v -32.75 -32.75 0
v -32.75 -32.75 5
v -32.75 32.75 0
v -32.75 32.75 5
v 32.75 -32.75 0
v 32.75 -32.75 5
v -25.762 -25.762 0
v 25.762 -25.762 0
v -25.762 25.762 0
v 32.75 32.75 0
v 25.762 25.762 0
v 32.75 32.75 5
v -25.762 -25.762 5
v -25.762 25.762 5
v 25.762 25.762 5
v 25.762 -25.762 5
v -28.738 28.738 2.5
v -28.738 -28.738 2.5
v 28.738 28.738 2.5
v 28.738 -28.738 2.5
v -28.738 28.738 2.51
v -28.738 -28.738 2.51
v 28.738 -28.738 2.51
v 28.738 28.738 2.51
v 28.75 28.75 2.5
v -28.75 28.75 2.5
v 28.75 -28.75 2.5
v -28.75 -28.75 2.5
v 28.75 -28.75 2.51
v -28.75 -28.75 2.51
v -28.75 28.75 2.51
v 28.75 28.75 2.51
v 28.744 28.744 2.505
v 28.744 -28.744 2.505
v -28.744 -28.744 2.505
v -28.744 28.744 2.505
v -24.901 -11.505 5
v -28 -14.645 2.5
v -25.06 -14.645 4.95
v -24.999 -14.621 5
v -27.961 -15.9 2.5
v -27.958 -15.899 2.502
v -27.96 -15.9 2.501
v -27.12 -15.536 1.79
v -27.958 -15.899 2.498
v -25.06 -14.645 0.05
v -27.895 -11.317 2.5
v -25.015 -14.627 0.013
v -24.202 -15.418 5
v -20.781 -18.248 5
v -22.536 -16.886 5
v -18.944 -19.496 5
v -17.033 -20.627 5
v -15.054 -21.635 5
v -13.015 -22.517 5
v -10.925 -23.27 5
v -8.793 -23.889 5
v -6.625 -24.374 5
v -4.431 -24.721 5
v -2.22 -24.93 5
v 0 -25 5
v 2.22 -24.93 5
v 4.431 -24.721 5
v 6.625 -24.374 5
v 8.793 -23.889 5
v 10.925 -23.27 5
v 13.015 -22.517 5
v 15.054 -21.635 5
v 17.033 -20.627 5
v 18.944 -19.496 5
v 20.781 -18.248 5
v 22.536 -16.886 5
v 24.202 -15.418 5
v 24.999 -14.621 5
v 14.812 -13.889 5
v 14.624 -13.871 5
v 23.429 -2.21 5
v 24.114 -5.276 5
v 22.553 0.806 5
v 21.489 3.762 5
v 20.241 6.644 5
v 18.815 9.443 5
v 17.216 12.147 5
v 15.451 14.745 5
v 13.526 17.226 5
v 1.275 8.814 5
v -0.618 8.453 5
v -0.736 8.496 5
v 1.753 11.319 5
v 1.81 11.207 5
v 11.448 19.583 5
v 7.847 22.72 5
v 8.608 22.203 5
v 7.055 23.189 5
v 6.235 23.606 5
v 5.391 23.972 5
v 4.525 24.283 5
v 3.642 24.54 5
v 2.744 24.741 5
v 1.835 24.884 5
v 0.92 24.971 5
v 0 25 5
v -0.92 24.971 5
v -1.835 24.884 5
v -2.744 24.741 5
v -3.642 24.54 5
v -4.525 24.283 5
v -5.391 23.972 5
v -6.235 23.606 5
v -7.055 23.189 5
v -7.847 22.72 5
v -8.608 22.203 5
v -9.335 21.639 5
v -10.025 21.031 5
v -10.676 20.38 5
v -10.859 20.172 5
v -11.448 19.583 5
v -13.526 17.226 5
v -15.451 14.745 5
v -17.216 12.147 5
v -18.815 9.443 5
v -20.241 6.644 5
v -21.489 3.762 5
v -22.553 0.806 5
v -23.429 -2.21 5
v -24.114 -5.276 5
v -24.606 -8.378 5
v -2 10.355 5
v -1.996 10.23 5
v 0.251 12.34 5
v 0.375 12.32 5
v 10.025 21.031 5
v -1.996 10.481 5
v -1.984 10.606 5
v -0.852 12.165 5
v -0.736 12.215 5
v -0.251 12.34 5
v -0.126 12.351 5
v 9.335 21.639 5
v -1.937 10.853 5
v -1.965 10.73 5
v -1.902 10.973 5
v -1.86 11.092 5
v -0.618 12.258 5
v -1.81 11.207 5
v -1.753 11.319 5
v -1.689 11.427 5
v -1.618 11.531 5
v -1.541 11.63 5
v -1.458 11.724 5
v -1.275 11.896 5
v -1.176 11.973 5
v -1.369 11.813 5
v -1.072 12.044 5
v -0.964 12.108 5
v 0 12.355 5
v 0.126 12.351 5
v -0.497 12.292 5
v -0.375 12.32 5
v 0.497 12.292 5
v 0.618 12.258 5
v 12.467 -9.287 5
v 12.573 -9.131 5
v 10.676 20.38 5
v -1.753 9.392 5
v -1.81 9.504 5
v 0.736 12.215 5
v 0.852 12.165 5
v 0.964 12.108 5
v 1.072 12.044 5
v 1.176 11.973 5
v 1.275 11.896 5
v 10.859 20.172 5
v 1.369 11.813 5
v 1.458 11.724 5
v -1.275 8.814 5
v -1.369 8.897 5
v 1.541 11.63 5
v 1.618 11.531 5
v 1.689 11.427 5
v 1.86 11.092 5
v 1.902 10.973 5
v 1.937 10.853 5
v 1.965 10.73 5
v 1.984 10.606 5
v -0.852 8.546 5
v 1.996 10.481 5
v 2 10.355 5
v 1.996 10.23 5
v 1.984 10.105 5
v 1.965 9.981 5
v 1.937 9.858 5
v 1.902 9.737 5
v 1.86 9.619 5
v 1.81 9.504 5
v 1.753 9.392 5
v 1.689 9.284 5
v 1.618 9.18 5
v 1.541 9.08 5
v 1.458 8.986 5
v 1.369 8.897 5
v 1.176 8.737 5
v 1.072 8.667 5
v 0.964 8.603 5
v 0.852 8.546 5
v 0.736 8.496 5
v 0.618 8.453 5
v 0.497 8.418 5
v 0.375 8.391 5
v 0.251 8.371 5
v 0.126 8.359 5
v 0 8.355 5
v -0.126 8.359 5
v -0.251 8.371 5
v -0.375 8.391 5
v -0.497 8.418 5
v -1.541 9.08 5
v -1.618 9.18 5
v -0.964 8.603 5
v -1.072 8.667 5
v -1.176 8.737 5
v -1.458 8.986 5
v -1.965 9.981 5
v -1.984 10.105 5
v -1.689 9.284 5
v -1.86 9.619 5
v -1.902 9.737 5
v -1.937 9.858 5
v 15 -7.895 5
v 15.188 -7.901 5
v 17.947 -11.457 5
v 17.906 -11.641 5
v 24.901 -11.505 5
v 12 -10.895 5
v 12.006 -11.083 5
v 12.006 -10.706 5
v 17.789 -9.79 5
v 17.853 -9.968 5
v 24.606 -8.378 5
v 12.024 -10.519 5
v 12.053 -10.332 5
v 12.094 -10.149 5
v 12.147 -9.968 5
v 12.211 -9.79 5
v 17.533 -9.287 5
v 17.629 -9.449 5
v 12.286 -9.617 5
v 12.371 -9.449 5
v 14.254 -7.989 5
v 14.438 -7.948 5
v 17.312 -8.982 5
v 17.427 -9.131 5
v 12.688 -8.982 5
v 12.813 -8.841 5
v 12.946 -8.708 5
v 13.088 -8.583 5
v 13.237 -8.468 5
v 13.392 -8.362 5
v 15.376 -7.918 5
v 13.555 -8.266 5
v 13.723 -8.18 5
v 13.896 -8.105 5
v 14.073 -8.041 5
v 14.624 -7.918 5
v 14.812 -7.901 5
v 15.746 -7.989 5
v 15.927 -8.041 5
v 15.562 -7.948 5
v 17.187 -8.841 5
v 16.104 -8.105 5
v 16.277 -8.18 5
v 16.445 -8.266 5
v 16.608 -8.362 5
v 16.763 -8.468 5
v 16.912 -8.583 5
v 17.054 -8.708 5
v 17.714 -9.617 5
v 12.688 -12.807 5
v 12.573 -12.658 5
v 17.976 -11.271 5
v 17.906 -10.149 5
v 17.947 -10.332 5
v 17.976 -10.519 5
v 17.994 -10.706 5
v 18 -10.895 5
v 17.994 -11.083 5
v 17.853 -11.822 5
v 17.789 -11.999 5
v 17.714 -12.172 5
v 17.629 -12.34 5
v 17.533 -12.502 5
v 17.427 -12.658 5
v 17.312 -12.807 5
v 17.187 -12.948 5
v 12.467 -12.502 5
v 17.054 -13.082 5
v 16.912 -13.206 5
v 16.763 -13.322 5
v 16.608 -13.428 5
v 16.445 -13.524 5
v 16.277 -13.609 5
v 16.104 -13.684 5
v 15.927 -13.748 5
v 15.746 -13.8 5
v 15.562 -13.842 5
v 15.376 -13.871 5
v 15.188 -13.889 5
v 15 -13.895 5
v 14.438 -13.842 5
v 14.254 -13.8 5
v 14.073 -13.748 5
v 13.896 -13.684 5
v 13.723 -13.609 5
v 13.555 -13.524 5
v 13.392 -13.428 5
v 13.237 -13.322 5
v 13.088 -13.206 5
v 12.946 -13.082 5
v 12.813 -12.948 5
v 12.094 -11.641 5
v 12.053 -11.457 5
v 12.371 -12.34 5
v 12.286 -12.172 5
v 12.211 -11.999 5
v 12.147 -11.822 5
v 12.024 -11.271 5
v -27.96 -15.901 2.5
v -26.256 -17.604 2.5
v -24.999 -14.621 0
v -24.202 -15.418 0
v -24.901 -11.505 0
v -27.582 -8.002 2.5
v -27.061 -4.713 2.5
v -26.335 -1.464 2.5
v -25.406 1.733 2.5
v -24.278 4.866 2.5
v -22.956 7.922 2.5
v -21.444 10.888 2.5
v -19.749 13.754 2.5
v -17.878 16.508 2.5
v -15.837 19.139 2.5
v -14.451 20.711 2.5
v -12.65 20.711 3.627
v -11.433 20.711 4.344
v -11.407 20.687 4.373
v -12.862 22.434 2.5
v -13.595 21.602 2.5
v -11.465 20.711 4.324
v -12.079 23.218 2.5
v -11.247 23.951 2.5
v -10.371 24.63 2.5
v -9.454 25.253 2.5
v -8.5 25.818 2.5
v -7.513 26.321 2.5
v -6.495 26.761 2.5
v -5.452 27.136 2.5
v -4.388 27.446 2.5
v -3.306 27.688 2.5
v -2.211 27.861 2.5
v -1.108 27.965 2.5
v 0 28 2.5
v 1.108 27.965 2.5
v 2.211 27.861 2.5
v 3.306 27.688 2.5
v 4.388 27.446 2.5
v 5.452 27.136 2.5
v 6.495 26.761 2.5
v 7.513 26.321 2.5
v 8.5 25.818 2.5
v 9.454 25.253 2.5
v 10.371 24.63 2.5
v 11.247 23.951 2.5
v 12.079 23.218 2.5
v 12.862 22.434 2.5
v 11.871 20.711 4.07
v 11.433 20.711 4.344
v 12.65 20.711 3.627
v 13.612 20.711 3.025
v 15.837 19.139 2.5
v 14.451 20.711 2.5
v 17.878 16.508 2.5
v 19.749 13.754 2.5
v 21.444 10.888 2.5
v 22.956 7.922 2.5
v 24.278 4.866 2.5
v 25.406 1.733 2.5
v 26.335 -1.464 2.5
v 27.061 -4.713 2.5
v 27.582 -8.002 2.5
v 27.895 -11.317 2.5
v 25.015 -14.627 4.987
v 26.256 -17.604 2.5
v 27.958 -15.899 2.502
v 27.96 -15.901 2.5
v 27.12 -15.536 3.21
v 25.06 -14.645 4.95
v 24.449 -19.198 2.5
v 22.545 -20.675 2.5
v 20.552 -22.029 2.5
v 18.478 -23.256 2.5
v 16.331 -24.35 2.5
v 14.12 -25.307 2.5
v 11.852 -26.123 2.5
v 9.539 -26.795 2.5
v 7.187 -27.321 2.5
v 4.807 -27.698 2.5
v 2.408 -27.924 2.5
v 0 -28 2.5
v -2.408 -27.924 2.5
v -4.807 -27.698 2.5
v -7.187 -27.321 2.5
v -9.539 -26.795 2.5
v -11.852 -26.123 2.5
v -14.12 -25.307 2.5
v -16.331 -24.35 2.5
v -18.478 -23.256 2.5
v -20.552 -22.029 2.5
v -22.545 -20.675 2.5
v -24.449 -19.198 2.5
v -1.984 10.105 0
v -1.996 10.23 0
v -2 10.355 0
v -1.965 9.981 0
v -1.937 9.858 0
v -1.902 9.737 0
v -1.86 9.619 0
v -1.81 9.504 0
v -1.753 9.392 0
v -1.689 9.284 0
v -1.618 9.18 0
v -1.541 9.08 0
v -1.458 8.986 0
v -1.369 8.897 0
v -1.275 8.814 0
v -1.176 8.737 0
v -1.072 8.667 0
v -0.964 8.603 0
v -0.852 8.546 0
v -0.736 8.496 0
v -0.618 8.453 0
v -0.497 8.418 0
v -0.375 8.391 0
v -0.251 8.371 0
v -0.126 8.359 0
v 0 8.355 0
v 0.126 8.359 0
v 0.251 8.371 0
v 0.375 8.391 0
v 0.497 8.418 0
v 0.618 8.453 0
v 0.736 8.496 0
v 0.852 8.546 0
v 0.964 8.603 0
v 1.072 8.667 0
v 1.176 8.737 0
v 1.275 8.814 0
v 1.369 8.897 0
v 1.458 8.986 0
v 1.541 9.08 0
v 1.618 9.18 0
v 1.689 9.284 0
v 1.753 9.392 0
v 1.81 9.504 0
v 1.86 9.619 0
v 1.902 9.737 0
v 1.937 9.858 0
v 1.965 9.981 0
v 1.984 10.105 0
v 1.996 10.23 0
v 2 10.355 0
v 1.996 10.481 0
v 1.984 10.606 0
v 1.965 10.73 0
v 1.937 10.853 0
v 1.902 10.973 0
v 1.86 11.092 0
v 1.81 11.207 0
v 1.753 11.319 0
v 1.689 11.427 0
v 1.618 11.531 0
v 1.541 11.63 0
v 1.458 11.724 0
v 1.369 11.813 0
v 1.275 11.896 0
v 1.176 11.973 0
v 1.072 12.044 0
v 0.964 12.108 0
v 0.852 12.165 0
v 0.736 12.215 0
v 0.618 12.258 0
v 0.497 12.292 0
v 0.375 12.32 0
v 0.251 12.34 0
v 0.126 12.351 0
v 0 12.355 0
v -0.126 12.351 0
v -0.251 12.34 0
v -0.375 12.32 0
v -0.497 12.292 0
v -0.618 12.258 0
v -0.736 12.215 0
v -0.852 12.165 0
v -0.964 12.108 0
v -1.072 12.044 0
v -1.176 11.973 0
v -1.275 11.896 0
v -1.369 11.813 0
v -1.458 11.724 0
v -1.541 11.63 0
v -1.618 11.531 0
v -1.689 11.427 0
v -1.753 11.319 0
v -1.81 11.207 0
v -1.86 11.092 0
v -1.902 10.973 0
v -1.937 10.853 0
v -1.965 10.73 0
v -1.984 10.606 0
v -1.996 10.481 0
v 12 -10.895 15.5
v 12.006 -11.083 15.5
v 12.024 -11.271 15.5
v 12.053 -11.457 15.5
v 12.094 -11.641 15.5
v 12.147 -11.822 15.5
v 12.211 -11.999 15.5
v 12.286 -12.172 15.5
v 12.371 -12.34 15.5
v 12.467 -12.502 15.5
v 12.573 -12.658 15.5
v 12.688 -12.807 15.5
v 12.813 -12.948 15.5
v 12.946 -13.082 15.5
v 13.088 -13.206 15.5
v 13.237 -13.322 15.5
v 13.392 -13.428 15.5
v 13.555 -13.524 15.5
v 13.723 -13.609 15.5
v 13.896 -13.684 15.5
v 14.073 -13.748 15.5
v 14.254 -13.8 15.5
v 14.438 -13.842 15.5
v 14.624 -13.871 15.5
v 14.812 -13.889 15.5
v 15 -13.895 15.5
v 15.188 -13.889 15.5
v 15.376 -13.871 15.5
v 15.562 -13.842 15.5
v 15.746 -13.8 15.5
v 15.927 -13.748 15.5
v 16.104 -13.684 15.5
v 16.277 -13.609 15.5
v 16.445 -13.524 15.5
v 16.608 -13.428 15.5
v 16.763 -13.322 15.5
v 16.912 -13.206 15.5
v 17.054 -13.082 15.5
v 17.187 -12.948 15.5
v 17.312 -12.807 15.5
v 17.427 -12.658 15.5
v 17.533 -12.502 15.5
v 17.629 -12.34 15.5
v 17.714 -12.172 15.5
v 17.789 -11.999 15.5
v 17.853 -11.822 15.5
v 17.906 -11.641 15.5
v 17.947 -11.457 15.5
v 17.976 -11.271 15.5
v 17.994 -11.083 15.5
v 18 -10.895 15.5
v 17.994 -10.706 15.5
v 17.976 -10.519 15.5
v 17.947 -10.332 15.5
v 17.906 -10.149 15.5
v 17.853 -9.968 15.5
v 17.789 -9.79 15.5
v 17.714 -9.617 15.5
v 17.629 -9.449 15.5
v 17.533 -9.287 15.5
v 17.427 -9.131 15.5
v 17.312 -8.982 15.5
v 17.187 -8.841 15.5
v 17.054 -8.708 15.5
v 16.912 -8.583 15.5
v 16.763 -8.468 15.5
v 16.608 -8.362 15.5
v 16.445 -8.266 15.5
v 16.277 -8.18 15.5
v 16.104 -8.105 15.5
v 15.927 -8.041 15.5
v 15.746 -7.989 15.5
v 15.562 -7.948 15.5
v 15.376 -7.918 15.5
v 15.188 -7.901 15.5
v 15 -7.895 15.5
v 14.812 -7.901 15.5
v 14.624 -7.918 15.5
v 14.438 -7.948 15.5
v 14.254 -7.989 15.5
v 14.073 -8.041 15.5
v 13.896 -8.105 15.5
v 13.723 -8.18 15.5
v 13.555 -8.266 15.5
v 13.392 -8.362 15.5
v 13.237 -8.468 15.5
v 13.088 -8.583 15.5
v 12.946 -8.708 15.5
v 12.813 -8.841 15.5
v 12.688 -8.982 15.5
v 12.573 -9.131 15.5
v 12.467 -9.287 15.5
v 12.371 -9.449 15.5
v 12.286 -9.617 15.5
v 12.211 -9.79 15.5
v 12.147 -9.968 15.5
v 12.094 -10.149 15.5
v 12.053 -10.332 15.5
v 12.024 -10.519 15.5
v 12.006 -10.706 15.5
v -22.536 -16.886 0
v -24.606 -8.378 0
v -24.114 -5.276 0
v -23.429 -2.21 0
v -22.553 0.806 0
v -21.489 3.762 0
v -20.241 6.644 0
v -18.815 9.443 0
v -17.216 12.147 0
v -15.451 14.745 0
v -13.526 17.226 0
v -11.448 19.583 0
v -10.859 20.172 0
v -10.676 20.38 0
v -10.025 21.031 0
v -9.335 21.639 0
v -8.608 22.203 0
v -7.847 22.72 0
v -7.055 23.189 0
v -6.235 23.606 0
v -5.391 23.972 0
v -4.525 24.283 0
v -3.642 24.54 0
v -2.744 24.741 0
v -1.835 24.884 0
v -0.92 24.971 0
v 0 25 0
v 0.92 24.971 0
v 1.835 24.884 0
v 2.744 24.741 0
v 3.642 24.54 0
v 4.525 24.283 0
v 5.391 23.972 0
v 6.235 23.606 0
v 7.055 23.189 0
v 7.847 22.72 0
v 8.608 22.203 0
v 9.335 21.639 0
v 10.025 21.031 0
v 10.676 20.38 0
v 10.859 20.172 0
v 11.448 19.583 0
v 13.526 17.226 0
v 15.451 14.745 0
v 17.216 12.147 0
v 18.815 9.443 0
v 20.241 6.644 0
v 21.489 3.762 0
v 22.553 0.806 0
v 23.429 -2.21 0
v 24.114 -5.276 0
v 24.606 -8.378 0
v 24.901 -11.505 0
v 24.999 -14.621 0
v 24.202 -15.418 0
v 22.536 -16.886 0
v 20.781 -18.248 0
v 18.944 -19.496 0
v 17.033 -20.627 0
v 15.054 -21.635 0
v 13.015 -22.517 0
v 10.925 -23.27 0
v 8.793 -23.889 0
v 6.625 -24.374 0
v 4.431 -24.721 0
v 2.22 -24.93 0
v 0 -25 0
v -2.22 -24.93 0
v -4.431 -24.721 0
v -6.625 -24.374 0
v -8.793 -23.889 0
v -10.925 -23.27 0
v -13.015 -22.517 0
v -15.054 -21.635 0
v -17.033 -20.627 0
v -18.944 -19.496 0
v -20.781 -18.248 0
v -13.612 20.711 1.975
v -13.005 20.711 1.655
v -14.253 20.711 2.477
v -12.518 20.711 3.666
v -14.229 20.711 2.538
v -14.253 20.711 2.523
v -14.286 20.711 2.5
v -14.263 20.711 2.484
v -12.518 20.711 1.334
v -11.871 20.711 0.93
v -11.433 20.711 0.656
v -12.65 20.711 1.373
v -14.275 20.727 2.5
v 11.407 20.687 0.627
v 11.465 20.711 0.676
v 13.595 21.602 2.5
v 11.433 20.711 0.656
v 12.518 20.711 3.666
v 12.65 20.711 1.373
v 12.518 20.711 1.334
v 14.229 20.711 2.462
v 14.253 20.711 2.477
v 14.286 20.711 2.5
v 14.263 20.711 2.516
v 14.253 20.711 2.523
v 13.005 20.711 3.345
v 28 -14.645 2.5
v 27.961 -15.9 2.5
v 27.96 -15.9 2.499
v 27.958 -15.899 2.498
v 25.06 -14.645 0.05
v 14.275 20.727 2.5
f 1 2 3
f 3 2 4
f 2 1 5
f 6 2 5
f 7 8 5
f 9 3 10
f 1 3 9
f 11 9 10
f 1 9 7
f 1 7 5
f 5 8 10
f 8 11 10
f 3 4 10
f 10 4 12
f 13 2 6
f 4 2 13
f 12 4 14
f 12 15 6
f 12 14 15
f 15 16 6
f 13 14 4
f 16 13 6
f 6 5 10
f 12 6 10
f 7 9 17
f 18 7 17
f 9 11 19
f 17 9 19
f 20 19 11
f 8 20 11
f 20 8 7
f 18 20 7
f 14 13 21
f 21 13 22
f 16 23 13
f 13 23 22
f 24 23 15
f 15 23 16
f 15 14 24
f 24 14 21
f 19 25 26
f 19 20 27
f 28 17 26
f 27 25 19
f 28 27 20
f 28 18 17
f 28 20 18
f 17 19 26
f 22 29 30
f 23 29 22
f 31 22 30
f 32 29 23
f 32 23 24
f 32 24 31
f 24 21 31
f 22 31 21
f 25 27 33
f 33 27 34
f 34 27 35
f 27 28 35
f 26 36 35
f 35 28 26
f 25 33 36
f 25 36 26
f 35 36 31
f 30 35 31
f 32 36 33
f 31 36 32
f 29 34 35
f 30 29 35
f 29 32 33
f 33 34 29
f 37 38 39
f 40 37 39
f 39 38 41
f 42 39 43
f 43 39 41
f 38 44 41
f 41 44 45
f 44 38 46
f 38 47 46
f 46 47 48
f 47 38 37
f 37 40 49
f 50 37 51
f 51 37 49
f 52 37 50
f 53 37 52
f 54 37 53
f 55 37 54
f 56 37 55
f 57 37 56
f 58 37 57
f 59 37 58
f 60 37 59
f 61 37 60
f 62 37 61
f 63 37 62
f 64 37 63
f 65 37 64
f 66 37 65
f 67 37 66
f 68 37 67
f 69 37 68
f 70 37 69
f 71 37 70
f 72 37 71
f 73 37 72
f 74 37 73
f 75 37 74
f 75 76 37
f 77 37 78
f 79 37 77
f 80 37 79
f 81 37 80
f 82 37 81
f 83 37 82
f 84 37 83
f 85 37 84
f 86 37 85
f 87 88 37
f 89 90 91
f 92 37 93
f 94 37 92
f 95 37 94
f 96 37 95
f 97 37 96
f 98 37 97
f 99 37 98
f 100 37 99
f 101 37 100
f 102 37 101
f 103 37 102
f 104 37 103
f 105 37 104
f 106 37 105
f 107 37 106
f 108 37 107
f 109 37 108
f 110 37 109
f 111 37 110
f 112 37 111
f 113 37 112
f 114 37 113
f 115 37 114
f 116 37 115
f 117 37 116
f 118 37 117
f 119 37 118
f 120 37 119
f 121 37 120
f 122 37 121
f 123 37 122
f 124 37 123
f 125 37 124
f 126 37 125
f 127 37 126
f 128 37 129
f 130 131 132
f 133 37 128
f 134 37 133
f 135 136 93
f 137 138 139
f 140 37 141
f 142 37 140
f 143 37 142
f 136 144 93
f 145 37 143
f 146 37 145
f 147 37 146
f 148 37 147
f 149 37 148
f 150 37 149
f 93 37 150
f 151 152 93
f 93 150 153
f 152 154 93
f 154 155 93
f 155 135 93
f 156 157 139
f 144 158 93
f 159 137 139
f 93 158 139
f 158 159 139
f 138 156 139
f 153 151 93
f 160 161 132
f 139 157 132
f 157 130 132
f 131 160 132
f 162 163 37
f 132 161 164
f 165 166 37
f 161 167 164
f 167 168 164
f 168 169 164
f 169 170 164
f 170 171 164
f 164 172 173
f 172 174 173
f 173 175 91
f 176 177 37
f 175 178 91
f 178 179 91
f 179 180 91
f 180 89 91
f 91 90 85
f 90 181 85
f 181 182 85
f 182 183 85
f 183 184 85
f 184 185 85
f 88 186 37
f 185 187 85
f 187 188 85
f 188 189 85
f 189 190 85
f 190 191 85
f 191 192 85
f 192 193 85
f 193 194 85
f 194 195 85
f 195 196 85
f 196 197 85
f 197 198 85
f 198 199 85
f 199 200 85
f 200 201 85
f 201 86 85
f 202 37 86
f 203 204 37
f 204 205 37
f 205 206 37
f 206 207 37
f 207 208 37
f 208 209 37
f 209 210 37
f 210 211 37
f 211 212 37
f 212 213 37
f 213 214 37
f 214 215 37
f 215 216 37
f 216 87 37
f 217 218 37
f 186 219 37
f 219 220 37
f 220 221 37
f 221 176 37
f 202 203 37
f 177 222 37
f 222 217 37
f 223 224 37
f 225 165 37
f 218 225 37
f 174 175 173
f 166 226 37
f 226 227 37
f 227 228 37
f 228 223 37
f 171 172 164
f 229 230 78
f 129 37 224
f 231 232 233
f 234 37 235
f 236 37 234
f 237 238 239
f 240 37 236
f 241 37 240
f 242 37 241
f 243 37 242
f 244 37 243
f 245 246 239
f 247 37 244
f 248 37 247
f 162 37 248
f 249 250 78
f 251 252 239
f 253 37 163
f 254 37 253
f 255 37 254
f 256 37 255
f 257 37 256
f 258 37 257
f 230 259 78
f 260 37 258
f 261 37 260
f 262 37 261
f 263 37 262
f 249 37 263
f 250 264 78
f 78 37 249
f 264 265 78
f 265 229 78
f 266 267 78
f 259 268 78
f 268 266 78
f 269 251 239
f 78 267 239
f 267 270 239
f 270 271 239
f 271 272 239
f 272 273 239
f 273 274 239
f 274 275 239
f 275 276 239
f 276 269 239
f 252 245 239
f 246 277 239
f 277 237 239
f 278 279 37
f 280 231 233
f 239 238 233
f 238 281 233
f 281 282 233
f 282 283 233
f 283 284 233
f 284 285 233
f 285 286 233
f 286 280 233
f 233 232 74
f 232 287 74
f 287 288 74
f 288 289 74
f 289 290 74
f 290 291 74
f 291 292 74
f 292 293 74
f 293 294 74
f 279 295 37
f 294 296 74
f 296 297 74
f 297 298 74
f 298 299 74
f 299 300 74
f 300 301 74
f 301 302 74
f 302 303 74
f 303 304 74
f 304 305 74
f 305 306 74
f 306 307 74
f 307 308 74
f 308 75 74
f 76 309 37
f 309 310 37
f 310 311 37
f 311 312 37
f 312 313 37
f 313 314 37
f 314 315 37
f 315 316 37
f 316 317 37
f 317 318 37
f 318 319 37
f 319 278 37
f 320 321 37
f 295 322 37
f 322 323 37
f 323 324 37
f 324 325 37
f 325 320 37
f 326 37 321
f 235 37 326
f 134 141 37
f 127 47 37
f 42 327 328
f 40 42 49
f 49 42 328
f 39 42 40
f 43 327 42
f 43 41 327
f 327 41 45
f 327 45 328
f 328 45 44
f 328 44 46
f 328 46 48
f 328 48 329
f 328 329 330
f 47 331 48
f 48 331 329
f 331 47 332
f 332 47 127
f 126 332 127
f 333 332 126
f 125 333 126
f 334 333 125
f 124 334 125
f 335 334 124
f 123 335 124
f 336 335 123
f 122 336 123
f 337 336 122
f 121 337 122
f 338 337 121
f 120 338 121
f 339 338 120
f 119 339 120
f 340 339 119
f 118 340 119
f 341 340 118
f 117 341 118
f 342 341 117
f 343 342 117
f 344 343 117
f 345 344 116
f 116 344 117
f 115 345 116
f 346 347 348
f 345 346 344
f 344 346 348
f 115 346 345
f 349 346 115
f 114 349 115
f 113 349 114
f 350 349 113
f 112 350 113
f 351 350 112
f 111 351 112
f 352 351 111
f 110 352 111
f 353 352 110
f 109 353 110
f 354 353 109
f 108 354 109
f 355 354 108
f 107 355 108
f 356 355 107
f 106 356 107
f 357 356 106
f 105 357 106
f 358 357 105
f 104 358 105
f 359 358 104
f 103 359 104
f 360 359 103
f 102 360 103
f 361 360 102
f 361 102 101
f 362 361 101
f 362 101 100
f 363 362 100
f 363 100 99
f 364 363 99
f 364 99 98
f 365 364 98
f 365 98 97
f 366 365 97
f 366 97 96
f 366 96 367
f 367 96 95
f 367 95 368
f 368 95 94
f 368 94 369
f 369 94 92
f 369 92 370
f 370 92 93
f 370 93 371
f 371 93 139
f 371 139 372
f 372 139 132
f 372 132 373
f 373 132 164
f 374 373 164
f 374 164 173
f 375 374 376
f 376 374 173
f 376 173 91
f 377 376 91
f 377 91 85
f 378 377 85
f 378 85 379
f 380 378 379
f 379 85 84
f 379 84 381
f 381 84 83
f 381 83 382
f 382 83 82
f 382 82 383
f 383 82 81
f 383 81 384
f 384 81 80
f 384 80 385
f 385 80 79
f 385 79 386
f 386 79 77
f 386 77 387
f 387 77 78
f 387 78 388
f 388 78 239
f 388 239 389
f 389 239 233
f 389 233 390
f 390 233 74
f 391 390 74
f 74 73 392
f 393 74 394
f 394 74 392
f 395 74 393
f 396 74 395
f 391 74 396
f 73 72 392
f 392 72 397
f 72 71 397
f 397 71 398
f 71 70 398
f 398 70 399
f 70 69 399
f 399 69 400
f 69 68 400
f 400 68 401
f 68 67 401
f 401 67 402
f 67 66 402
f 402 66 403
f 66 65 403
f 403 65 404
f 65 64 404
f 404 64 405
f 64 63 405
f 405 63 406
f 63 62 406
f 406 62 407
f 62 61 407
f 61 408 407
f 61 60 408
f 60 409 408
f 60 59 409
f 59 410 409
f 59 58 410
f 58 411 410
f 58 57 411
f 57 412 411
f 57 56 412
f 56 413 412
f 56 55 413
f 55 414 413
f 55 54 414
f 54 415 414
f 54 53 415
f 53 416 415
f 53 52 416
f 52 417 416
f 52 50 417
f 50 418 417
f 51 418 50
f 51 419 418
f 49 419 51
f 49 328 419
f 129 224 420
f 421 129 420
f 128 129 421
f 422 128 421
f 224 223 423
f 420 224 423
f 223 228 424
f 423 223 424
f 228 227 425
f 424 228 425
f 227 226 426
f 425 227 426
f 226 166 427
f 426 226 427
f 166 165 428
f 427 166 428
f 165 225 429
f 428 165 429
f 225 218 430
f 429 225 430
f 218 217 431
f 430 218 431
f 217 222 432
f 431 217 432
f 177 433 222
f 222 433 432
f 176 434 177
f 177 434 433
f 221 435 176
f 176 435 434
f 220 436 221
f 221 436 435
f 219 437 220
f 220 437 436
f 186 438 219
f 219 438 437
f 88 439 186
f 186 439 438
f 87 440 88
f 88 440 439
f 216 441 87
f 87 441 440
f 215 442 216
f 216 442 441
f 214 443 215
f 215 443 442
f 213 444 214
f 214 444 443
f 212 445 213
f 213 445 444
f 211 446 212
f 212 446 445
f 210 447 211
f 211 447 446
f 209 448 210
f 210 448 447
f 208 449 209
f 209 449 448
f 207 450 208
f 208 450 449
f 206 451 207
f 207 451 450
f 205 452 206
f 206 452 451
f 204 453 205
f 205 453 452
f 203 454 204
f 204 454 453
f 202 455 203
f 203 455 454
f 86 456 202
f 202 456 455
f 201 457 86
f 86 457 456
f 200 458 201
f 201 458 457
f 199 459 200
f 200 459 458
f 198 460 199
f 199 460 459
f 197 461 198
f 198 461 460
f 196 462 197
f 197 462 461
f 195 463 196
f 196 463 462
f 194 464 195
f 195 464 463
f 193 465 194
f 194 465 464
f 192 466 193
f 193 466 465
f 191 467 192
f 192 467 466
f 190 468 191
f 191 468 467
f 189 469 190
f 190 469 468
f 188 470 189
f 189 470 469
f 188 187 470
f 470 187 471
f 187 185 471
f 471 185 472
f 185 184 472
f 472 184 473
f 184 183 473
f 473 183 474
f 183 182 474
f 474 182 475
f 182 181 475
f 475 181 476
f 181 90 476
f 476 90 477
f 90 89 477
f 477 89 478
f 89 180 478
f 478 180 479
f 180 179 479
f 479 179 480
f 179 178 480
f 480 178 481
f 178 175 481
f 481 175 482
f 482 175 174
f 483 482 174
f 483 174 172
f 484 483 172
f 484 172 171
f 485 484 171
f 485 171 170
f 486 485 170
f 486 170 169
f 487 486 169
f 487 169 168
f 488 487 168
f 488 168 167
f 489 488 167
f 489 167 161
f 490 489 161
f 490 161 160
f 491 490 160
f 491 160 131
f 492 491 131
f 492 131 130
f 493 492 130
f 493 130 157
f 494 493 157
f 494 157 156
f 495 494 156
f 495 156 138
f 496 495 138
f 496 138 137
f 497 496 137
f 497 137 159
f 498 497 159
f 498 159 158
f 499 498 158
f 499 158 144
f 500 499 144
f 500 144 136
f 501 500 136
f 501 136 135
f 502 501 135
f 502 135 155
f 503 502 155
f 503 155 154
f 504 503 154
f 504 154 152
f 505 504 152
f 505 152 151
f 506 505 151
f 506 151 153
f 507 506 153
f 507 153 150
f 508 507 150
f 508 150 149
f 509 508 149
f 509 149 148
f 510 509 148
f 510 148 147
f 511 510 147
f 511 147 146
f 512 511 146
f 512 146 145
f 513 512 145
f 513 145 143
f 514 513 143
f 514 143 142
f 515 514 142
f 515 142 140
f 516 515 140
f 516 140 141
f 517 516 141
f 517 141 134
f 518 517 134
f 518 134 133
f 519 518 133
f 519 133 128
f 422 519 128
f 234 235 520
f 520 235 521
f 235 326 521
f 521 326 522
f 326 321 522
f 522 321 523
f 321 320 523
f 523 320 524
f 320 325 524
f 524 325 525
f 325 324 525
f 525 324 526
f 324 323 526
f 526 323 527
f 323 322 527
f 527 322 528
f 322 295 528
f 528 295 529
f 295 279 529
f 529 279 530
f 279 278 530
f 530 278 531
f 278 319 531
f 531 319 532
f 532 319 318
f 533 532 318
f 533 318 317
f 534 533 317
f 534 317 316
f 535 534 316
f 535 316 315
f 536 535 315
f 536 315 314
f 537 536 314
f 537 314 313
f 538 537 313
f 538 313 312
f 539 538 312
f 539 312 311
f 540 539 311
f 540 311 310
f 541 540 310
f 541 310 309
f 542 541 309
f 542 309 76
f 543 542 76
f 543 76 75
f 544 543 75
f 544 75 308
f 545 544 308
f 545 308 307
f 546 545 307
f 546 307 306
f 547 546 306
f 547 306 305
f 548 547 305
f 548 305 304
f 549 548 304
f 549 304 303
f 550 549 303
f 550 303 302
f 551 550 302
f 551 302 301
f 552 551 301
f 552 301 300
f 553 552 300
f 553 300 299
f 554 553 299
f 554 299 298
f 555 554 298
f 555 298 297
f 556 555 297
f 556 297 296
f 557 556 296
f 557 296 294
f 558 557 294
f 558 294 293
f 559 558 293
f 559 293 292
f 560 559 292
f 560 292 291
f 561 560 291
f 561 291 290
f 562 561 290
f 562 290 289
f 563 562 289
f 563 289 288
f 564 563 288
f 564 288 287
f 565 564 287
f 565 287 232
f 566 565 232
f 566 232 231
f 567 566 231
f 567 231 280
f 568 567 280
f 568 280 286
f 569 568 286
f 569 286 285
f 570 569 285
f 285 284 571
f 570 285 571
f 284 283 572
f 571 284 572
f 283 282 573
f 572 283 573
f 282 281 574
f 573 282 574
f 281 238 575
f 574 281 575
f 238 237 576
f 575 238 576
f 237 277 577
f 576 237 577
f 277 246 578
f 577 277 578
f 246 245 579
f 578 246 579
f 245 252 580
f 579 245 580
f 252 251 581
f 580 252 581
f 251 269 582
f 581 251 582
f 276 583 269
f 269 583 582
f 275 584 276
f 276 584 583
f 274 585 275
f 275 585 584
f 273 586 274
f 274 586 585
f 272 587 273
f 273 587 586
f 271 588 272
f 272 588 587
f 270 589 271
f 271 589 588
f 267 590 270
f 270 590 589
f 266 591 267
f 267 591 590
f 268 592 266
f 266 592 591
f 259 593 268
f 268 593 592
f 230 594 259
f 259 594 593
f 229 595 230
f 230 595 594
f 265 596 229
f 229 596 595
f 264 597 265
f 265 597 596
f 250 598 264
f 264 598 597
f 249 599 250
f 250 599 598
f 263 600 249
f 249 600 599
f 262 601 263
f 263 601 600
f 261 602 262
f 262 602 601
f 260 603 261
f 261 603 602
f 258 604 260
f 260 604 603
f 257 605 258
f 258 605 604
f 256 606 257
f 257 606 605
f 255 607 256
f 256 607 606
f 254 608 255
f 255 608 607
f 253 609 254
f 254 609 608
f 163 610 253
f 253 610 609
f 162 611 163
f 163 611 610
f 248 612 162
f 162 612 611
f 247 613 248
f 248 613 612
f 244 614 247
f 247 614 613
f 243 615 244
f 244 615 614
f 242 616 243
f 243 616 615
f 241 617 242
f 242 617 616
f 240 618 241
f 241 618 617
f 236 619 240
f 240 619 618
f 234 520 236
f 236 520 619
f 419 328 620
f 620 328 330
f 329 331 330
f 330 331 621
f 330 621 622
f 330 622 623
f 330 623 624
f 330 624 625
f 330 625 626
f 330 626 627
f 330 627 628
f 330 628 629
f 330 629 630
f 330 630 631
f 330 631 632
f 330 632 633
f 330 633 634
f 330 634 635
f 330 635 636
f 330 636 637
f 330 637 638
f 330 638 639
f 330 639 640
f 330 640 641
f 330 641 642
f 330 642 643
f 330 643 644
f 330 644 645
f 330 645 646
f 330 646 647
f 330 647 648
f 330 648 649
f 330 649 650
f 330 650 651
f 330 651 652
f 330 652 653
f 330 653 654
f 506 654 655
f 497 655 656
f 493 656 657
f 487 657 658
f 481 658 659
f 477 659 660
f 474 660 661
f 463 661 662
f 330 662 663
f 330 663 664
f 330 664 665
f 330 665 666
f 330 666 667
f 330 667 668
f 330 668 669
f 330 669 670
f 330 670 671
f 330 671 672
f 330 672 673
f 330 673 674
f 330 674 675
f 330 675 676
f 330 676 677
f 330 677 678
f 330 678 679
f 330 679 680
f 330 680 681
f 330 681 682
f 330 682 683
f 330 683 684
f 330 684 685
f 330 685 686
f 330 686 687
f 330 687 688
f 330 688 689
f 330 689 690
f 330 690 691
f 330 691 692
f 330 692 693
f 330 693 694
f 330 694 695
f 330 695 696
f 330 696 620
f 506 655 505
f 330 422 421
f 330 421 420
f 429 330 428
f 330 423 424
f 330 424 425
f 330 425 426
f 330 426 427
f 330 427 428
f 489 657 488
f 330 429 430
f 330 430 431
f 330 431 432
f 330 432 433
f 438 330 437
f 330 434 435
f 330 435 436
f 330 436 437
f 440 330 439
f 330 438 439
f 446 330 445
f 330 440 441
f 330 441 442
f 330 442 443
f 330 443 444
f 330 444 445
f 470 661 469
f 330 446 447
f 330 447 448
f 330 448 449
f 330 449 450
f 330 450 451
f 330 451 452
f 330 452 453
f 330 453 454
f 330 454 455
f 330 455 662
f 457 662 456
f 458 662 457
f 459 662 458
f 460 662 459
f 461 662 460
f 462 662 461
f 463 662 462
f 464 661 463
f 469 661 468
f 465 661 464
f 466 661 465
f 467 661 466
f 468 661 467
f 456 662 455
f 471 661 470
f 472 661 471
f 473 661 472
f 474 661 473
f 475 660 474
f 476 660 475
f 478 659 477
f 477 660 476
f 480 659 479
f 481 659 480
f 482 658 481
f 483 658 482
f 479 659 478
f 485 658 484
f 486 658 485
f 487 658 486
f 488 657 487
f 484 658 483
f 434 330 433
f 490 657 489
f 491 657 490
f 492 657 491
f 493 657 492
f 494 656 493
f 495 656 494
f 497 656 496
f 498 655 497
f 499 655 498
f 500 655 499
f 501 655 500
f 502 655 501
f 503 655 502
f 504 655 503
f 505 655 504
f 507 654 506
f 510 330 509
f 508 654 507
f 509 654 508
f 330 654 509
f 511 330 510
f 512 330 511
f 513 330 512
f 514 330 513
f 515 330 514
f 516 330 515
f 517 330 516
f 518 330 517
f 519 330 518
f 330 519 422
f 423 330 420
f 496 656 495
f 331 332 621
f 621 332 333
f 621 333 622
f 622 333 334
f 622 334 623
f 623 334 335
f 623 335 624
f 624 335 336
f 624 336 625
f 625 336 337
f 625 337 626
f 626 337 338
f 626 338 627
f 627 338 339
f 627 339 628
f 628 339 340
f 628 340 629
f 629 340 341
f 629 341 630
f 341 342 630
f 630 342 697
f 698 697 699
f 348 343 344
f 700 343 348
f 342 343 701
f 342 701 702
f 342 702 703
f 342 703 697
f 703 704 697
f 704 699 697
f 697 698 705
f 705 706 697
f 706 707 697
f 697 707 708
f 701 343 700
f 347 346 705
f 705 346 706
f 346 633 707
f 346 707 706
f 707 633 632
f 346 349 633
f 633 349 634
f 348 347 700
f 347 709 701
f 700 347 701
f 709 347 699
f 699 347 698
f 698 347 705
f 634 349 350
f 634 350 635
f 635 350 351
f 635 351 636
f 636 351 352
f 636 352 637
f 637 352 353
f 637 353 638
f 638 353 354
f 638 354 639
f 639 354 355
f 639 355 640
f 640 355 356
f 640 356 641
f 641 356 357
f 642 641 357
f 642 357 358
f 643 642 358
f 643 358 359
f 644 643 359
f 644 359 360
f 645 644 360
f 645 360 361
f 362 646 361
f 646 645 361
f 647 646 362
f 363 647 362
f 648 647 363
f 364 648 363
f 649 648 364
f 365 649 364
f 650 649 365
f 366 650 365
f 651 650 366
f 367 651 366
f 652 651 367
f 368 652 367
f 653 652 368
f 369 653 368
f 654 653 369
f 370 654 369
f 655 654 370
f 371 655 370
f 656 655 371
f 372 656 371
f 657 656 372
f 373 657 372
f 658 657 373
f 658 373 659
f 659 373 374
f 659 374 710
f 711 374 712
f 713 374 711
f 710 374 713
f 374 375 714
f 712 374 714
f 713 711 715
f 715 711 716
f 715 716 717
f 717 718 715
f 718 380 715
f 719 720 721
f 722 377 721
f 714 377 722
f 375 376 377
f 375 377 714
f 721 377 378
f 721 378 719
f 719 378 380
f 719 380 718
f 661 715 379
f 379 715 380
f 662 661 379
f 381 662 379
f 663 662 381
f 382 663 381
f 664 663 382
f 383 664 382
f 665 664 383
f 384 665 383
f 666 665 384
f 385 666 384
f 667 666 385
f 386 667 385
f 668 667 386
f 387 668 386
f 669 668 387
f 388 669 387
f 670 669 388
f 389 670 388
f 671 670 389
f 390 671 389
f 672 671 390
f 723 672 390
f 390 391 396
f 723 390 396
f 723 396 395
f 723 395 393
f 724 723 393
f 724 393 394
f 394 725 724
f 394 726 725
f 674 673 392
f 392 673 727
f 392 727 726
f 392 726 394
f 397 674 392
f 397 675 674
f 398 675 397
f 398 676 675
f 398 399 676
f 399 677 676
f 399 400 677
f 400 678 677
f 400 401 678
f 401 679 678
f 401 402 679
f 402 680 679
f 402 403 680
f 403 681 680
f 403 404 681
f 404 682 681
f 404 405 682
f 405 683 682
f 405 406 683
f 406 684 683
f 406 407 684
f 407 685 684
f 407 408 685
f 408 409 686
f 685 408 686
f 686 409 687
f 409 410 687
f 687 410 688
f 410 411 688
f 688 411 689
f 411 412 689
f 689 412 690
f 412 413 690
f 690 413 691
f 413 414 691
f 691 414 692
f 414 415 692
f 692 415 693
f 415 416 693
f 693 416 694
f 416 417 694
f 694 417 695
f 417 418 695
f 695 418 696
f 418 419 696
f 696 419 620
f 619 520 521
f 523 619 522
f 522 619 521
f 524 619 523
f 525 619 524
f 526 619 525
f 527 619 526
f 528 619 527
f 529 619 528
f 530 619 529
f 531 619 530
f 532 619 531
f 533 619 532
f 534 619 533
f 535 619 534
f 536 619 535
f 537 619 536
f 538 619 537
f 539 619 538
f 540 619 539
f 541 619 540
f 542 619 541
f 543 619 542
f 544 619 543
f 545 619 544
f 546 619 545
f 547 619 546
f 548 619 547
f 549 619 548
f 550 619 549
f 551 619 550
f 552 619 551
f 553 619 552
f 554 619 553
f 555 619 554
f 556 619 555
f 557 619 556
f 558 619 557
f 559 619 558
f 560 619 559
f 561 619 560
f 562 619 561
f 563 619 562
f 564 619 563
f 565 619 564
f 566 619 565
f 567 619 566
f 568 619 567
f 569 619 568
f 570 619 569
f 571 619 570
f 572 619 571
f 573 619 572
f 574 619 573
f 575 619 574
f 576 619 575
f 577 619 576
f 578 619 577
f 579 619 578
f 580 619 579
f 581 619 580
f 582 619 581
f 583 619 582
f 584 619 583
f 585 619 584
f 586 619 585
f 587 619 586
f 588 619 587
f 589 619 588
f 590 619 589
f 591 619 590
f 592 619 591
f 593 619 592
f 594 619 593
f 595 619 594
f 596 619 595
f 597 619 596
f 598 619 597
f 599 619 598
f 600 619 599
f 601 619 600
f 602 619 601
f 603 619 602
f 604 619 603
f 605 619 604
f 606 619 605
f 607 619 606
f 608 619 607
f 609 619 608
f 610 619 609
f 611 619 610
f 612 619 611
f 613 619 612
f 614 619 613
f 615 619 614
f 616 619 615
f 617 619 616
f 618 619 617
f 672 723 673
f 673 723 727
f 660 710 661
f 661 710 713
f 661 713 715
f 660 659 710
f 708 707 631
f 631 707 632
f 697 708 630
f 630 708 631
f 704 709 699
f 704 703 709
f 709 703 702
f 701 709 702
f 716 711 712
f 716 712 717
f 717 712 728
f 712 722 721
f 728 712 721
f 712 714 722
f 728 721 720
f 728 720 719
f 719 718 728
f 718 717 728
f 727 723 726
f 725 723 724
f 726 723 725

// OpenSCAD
eps = 0.01;
$fn=100;
// replace a simple cylinder with a middle tapered pair
// height, radius and offset for the triangular profile
module peg(h,r,o) {
	union(){
		cylinder(r1=r+o,r2=r, h=h/2);
		translate([0,0,-h/2])
			cylinder(r1=r,r2=r+o, h=h/2);
	}
}

module wedge(h,r,a,o){
	intersection(){
		peg(h,r,o);
		rotate([0,0,90-a/2])
			translate([r+o,0,0])
			cube([2*(r+o),2*(r+o),2*h],center=true);
		rotate([0,0,90+a/2])
			translate([-(r+o),0,0])
			cube([2*(r+o),2*(r+o),2*h],center=true);
	}
}



//Following "Circle Squaring, a mechanical view" by Cox and Wagon

////width of the rotor, height of the rotor, offset for the of triangular profile (> 0)
//module rotor(w,h,o){
//	//length unit
//	u = 0.5*w;
//	union(){
//		rotate([0,0,-90])
//		wedge(h,u*sqrt(2),90,o);
////		rotate([0,0,67.5])
////			translate([-u*(2-sqrt(2)),0,0])
//		translate([-u,-u,0])
//			rotate([0,0,22.5])
//#			wedge(h,u*2,45,o);
//	}
//}



//width of the rotor, height of the rotor, offset for the of triangular profile (> 0)
module rotor(w,h,o,r_h,r_k,h_k){
	//length unit
	u = 0.5*w;
	translate([0,u*(sqrt(2)-1),h/2])
	difference(){
		union(){
			intersection(){
				peg(h,u*sqrt(2),o);
				translate([+u,-u,0])
					peg(h,u*2,o);
				translate([-u,-u,0])
					peg(h,u*2,o);
				translate([0,-u*(2-sqrt(2)),0])
					cube([u*4,u*2,h],center=true);
			}
			peg(h,u*(2-sqrt(2)),o);
			translate([.6*u,-0.85*u,0])
			cylinder(r=r_k,h=h+h_k);
		}
		cylinder(h=2*h,r=r_h,center=true);
	}
}

// h = height
// w = bottom square
// r = radius offset top larger than bottom
module SquareTrapezoid(w,r,h)
{
	m = w+r;
	polyhedron(
	points=[
		[0,0,0], [0,w,0], [w,w,0], [w,0,0], // bottom
		[-r,-r,h], [-r,m,h], [m,m,h], [m,-r,h]], // top
	triangles = [ // 6 faces
		 [0,2,1], [0,3,2], // bottom
		 [4,5,6], [4,6,7], // top
		 [0,4,7], [0,7,3], // front
		 [1,2,6], [1,6,5], // back
		 [1,5,4], [1,4,0], // left
		 [3,7,2], [2,7,6]] // right
	);
}

//width of the rotor (inner size), height, offset for profile, thickness of frame
module frame(w,h,o,t){
	translate([0,0,h/2])
	difference(){
		cube([w+2*t,w+2*t,h],center=true);
		translate([0,0,h/2+eps])
			rotate([0,180,0])
				translate([-w/2,-w/2,0])
					SquareTrapezoid(w,o,h/2+eps);
		translate([-w/2,-w/2,-h/2-eps])
			SquareTrapezoid(w,o,h/2+2*eps);
	}

}



union(){
	frame(51.5,5,3,7);
	rotor(50,5,3,2,3,8);
}
